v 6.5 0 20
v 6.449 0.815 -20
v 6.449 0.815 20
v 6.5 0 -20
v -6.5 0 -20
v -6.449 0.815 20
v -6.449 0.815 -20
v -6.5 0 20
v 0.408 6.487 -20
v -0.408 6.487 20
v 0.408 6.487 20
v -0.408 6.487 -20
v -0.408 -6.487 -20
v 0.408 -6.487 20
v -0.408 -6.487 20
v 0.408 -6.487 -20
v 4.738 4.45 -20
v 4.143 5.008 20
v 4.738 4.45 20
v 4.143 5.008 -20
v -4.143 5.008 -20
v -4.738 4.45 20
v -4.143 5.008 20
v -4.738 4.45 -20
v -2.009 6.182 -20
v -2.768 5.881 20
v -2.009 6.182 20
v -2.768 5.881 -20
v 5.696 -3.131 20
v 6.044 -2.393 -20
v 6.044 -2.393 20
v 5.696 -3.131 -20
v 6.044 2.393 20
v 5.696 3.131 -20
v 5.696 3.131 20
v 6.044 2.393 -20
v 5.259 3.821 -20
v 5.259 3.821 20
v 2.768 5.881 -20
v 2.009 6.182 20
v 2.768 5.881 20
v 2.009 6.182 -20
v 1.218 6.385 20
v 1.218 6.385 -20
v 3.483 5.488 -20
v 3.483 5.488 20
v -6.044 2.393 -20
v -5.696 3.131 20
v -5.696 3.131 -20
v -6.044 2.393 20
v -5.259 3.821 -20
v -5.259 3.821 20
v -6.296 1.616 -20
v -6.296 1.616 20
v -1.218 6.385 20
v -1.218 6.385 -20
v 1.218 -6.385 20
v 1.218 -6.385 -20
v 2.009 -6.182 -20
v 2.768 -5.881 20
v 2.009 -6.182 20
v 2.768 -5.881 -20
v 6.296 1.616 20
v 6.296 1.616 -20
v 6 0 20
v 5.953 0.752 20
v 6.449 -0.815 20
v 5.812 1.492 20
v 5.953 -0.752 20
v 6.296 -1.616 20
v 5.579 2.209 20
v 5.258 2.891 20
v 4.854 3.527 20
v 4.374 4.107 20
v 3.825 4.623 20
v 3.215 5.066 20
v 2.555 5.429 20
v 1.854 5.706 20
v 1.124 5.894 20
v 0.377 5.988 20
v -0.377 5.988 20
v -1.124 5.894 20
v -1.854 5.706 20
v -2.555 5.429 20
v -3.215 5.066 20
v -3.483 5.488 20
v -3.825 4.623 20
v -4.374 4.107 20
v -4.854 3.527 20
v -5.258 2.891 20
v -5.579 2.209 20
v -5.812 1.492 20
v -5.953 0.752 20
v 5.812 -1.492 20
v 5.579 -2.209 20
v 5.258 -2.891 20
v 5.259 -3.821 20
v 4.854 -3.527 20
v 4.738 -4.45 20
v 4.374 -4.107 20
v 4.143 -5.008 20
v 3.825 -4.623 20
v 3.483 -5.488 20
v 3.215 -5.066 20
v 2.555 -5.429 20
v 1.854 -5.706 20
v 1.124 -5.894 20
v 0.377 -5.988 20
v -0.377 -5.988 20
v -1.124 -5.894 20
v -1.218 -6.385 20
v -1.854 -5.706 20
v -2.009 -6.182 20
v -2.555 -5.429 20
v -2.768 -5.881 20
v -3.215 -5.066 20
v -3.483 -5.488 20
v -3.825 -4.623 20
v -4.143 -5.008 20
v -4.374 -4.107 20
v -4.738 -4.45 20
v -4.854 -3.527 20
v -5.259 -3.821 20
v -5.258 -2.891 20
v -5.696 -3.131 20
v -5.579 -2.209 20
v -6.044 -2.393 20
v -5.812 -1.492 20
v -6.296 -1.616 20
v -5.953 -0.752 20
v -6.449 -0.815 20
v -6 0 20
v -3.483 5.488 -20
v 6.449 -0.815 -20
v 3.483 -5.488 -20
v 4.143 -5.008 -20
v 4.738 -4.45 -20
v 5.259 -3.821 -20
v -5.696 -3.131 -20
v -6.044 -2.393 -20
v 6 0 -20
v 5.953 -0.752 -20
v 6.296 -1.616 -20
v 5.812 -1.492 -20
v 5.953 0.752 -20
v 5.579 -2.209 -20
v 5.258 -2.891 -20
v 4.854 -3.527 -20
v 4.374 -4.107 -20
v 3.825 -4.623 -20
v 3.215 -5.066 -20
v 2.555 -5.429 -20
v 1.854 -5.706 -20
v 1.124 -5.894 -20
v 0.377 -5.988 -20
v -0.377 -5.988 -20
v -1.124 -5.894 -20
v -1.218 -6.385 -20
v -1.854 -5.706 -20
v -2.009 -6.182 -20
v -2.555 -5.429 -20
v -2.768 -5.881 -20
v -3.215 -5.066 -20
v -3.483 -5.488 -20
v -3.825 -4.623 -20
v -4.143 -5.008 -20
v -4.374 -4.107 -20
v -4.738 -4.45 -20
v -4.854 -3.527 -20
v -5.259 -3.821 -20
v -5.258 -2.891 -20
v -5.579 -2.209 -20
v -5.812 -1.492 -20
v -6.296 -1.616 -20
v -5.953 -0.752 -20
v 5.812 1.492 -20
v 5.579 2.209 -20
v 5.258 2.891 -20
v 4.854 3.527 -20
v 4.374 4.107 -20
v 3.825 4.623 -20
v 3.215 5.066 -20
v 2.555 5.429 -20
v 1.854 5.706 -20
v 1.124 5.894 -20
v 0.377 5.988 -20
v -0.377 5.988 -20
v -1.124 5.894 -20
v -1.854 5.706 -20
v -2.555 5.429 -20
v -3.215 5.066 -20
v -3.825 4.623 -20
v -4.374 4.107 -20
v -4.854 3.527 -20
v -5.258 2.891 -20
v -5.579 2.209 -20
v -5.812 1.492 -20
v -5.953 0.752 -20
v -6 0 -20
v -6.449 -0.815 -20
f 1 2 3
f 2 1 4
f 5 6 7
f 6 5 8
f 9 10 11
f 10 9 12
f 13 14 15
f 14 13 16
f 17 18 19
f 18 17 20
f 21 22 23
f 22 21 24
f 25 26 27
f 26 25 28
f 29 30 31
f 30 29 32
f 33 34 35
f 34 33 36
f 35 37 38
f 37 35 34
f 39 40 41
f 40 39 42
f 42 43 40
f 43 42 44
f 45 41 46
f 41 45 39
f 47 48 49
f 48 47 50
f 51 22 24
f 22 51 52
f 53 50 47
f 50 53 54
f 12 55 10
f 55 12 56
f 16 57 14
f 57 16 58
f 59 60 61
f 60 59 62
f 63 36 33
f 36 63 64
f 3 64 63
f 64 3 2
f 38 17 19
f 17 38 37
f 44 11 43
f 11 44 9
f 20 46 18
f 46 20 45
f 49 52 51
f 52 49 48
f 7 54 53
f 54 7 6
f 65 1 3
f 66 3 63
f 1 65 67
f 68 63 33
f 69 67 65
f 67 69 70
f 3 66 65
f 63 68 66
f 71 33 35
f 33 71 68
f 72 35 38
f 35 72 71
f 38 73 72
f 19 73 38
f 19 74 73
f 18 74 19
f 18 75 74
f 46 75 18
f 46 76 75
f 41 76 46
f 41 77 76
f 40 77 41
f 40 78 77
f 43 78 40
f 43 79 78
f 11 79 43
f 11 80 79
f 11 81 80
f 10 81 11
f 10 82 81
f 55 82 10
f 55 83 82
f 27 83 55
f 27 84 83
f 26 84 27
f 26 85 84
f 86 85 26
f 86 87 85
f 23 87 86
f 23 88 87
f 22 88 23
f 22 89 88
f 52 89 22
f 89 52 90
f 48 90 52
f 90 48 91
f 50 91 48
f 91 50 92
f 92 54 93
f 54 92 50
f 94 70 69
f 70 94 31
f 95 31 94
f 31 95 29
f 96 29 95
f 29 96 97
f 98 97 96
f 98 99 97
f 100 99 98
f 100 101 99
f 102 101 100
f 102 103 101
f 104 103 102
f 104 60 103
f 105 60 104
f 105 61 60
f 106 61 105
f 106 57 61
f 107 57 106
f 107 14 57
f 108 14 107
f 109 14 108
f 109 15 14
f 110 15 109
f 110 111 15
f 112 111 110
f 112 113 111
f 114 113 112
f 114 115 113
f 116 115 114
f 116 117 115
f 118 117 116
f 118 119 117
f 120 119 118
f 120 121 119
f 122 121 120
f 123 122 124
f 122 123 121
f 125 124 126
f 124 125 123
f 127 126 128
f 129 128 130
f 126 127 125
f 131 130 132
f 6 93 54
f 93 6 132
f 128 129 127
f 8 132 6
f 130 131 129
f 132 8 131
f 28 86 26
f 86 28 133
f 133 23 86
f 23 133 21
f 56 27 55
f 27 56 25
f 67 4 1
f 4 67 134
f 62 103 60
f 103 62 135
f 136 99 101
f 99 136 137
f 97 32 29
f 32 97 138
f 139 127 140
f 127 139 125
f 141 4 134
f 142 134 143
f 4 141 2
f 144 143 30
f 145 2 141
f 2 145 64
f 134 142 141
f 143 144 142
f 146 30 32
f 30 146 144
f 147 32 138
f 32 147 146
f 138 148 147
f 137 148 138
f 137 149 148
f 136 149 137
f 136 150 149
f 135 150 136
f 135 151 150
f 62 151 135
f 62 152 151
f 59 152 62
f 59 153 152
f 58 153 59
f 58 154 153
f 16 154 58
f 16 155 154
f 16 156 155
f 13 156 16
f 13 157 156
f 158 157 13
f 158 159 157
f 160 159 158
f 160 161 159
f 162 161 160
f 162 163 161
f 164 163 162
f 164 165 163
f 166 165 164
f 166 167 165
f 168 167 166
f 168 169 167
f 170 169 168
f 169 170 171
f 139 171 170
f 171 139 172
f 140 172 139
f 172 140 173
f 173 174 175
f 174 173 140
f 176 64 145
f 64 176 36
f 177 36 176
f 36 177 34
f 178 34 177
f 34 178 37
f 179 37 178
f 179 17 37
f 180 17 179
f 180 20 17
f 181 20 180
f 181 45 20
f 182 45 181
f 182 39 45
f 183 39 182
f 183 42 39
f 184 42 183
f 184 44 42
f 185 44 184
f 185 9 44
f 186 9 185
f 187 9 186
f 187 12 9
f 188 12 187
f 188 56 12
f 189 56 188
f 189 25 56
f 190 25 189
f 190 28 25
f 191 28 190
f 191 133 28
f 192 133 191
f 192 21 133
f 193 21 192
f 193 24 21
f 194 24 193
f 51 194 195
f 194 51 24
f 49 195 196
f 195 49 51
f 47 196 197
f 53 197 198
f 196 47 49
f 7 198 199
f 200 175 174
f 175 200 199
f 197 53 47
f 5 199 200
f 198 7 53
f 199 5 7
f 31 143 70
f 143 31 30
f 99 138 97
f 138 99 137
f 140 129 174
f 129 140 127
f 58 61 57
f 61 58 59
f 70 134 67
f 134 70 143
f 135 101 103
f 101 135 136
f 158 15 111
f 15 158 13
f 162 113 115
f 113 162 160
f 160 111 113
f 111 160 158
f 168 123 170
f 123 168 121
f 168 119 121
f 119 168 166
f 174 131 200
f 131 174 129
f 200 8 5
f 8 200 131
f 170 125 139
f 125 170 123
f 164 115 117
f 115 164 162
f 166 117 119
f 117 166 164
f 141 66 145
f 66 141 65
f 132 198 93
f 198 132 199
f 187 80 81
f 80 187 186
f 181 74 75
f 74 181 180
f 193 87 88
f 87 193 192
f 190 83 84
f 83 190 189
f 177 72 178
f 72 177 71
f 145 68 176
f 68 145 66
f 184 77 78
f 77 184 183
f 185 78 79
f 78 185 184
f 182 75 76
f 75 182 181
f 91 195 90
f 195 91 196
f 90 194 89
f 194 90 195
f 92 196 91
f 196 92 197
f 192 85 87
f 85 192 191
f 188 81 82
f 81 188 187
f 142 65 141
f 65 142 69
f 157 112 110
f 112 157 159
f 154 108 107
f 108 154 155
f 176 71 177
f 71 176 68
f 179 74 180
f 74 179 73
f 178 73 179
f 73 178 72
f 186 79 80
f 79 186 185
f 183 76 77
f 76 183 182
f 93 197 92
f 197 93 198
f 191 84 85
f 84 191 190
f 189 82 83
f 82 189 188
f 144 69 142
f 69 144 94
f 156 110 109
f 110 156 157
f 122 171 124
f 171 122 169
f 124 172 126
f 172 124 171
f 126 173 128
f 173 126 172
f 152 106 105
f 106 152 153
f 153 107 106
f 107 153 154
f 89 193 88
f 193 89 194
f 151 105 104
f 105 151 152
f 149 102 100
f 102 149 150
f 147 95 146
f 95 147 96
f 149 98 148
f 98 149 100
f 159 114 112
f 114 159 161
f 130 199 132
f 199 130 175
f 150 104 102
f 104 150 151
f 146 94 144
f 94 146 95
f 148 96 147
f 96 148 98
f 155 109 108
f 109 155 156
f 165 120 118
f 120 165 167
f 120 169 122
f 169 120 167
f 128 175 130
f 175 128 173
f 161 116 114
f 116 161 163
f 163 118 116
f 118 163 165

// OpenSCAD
$fn = 50;


difference() {
	union() {
		translate(v = [0, 0, -20.0000000000]) {
			cylinder(h = 40, r = 6.5000000000);
		}
	}
	union() {
		translate(v = [0, 0, -100.0000000000]) {
			cylinder(h = 200, r = 6);
		}
	}
}
